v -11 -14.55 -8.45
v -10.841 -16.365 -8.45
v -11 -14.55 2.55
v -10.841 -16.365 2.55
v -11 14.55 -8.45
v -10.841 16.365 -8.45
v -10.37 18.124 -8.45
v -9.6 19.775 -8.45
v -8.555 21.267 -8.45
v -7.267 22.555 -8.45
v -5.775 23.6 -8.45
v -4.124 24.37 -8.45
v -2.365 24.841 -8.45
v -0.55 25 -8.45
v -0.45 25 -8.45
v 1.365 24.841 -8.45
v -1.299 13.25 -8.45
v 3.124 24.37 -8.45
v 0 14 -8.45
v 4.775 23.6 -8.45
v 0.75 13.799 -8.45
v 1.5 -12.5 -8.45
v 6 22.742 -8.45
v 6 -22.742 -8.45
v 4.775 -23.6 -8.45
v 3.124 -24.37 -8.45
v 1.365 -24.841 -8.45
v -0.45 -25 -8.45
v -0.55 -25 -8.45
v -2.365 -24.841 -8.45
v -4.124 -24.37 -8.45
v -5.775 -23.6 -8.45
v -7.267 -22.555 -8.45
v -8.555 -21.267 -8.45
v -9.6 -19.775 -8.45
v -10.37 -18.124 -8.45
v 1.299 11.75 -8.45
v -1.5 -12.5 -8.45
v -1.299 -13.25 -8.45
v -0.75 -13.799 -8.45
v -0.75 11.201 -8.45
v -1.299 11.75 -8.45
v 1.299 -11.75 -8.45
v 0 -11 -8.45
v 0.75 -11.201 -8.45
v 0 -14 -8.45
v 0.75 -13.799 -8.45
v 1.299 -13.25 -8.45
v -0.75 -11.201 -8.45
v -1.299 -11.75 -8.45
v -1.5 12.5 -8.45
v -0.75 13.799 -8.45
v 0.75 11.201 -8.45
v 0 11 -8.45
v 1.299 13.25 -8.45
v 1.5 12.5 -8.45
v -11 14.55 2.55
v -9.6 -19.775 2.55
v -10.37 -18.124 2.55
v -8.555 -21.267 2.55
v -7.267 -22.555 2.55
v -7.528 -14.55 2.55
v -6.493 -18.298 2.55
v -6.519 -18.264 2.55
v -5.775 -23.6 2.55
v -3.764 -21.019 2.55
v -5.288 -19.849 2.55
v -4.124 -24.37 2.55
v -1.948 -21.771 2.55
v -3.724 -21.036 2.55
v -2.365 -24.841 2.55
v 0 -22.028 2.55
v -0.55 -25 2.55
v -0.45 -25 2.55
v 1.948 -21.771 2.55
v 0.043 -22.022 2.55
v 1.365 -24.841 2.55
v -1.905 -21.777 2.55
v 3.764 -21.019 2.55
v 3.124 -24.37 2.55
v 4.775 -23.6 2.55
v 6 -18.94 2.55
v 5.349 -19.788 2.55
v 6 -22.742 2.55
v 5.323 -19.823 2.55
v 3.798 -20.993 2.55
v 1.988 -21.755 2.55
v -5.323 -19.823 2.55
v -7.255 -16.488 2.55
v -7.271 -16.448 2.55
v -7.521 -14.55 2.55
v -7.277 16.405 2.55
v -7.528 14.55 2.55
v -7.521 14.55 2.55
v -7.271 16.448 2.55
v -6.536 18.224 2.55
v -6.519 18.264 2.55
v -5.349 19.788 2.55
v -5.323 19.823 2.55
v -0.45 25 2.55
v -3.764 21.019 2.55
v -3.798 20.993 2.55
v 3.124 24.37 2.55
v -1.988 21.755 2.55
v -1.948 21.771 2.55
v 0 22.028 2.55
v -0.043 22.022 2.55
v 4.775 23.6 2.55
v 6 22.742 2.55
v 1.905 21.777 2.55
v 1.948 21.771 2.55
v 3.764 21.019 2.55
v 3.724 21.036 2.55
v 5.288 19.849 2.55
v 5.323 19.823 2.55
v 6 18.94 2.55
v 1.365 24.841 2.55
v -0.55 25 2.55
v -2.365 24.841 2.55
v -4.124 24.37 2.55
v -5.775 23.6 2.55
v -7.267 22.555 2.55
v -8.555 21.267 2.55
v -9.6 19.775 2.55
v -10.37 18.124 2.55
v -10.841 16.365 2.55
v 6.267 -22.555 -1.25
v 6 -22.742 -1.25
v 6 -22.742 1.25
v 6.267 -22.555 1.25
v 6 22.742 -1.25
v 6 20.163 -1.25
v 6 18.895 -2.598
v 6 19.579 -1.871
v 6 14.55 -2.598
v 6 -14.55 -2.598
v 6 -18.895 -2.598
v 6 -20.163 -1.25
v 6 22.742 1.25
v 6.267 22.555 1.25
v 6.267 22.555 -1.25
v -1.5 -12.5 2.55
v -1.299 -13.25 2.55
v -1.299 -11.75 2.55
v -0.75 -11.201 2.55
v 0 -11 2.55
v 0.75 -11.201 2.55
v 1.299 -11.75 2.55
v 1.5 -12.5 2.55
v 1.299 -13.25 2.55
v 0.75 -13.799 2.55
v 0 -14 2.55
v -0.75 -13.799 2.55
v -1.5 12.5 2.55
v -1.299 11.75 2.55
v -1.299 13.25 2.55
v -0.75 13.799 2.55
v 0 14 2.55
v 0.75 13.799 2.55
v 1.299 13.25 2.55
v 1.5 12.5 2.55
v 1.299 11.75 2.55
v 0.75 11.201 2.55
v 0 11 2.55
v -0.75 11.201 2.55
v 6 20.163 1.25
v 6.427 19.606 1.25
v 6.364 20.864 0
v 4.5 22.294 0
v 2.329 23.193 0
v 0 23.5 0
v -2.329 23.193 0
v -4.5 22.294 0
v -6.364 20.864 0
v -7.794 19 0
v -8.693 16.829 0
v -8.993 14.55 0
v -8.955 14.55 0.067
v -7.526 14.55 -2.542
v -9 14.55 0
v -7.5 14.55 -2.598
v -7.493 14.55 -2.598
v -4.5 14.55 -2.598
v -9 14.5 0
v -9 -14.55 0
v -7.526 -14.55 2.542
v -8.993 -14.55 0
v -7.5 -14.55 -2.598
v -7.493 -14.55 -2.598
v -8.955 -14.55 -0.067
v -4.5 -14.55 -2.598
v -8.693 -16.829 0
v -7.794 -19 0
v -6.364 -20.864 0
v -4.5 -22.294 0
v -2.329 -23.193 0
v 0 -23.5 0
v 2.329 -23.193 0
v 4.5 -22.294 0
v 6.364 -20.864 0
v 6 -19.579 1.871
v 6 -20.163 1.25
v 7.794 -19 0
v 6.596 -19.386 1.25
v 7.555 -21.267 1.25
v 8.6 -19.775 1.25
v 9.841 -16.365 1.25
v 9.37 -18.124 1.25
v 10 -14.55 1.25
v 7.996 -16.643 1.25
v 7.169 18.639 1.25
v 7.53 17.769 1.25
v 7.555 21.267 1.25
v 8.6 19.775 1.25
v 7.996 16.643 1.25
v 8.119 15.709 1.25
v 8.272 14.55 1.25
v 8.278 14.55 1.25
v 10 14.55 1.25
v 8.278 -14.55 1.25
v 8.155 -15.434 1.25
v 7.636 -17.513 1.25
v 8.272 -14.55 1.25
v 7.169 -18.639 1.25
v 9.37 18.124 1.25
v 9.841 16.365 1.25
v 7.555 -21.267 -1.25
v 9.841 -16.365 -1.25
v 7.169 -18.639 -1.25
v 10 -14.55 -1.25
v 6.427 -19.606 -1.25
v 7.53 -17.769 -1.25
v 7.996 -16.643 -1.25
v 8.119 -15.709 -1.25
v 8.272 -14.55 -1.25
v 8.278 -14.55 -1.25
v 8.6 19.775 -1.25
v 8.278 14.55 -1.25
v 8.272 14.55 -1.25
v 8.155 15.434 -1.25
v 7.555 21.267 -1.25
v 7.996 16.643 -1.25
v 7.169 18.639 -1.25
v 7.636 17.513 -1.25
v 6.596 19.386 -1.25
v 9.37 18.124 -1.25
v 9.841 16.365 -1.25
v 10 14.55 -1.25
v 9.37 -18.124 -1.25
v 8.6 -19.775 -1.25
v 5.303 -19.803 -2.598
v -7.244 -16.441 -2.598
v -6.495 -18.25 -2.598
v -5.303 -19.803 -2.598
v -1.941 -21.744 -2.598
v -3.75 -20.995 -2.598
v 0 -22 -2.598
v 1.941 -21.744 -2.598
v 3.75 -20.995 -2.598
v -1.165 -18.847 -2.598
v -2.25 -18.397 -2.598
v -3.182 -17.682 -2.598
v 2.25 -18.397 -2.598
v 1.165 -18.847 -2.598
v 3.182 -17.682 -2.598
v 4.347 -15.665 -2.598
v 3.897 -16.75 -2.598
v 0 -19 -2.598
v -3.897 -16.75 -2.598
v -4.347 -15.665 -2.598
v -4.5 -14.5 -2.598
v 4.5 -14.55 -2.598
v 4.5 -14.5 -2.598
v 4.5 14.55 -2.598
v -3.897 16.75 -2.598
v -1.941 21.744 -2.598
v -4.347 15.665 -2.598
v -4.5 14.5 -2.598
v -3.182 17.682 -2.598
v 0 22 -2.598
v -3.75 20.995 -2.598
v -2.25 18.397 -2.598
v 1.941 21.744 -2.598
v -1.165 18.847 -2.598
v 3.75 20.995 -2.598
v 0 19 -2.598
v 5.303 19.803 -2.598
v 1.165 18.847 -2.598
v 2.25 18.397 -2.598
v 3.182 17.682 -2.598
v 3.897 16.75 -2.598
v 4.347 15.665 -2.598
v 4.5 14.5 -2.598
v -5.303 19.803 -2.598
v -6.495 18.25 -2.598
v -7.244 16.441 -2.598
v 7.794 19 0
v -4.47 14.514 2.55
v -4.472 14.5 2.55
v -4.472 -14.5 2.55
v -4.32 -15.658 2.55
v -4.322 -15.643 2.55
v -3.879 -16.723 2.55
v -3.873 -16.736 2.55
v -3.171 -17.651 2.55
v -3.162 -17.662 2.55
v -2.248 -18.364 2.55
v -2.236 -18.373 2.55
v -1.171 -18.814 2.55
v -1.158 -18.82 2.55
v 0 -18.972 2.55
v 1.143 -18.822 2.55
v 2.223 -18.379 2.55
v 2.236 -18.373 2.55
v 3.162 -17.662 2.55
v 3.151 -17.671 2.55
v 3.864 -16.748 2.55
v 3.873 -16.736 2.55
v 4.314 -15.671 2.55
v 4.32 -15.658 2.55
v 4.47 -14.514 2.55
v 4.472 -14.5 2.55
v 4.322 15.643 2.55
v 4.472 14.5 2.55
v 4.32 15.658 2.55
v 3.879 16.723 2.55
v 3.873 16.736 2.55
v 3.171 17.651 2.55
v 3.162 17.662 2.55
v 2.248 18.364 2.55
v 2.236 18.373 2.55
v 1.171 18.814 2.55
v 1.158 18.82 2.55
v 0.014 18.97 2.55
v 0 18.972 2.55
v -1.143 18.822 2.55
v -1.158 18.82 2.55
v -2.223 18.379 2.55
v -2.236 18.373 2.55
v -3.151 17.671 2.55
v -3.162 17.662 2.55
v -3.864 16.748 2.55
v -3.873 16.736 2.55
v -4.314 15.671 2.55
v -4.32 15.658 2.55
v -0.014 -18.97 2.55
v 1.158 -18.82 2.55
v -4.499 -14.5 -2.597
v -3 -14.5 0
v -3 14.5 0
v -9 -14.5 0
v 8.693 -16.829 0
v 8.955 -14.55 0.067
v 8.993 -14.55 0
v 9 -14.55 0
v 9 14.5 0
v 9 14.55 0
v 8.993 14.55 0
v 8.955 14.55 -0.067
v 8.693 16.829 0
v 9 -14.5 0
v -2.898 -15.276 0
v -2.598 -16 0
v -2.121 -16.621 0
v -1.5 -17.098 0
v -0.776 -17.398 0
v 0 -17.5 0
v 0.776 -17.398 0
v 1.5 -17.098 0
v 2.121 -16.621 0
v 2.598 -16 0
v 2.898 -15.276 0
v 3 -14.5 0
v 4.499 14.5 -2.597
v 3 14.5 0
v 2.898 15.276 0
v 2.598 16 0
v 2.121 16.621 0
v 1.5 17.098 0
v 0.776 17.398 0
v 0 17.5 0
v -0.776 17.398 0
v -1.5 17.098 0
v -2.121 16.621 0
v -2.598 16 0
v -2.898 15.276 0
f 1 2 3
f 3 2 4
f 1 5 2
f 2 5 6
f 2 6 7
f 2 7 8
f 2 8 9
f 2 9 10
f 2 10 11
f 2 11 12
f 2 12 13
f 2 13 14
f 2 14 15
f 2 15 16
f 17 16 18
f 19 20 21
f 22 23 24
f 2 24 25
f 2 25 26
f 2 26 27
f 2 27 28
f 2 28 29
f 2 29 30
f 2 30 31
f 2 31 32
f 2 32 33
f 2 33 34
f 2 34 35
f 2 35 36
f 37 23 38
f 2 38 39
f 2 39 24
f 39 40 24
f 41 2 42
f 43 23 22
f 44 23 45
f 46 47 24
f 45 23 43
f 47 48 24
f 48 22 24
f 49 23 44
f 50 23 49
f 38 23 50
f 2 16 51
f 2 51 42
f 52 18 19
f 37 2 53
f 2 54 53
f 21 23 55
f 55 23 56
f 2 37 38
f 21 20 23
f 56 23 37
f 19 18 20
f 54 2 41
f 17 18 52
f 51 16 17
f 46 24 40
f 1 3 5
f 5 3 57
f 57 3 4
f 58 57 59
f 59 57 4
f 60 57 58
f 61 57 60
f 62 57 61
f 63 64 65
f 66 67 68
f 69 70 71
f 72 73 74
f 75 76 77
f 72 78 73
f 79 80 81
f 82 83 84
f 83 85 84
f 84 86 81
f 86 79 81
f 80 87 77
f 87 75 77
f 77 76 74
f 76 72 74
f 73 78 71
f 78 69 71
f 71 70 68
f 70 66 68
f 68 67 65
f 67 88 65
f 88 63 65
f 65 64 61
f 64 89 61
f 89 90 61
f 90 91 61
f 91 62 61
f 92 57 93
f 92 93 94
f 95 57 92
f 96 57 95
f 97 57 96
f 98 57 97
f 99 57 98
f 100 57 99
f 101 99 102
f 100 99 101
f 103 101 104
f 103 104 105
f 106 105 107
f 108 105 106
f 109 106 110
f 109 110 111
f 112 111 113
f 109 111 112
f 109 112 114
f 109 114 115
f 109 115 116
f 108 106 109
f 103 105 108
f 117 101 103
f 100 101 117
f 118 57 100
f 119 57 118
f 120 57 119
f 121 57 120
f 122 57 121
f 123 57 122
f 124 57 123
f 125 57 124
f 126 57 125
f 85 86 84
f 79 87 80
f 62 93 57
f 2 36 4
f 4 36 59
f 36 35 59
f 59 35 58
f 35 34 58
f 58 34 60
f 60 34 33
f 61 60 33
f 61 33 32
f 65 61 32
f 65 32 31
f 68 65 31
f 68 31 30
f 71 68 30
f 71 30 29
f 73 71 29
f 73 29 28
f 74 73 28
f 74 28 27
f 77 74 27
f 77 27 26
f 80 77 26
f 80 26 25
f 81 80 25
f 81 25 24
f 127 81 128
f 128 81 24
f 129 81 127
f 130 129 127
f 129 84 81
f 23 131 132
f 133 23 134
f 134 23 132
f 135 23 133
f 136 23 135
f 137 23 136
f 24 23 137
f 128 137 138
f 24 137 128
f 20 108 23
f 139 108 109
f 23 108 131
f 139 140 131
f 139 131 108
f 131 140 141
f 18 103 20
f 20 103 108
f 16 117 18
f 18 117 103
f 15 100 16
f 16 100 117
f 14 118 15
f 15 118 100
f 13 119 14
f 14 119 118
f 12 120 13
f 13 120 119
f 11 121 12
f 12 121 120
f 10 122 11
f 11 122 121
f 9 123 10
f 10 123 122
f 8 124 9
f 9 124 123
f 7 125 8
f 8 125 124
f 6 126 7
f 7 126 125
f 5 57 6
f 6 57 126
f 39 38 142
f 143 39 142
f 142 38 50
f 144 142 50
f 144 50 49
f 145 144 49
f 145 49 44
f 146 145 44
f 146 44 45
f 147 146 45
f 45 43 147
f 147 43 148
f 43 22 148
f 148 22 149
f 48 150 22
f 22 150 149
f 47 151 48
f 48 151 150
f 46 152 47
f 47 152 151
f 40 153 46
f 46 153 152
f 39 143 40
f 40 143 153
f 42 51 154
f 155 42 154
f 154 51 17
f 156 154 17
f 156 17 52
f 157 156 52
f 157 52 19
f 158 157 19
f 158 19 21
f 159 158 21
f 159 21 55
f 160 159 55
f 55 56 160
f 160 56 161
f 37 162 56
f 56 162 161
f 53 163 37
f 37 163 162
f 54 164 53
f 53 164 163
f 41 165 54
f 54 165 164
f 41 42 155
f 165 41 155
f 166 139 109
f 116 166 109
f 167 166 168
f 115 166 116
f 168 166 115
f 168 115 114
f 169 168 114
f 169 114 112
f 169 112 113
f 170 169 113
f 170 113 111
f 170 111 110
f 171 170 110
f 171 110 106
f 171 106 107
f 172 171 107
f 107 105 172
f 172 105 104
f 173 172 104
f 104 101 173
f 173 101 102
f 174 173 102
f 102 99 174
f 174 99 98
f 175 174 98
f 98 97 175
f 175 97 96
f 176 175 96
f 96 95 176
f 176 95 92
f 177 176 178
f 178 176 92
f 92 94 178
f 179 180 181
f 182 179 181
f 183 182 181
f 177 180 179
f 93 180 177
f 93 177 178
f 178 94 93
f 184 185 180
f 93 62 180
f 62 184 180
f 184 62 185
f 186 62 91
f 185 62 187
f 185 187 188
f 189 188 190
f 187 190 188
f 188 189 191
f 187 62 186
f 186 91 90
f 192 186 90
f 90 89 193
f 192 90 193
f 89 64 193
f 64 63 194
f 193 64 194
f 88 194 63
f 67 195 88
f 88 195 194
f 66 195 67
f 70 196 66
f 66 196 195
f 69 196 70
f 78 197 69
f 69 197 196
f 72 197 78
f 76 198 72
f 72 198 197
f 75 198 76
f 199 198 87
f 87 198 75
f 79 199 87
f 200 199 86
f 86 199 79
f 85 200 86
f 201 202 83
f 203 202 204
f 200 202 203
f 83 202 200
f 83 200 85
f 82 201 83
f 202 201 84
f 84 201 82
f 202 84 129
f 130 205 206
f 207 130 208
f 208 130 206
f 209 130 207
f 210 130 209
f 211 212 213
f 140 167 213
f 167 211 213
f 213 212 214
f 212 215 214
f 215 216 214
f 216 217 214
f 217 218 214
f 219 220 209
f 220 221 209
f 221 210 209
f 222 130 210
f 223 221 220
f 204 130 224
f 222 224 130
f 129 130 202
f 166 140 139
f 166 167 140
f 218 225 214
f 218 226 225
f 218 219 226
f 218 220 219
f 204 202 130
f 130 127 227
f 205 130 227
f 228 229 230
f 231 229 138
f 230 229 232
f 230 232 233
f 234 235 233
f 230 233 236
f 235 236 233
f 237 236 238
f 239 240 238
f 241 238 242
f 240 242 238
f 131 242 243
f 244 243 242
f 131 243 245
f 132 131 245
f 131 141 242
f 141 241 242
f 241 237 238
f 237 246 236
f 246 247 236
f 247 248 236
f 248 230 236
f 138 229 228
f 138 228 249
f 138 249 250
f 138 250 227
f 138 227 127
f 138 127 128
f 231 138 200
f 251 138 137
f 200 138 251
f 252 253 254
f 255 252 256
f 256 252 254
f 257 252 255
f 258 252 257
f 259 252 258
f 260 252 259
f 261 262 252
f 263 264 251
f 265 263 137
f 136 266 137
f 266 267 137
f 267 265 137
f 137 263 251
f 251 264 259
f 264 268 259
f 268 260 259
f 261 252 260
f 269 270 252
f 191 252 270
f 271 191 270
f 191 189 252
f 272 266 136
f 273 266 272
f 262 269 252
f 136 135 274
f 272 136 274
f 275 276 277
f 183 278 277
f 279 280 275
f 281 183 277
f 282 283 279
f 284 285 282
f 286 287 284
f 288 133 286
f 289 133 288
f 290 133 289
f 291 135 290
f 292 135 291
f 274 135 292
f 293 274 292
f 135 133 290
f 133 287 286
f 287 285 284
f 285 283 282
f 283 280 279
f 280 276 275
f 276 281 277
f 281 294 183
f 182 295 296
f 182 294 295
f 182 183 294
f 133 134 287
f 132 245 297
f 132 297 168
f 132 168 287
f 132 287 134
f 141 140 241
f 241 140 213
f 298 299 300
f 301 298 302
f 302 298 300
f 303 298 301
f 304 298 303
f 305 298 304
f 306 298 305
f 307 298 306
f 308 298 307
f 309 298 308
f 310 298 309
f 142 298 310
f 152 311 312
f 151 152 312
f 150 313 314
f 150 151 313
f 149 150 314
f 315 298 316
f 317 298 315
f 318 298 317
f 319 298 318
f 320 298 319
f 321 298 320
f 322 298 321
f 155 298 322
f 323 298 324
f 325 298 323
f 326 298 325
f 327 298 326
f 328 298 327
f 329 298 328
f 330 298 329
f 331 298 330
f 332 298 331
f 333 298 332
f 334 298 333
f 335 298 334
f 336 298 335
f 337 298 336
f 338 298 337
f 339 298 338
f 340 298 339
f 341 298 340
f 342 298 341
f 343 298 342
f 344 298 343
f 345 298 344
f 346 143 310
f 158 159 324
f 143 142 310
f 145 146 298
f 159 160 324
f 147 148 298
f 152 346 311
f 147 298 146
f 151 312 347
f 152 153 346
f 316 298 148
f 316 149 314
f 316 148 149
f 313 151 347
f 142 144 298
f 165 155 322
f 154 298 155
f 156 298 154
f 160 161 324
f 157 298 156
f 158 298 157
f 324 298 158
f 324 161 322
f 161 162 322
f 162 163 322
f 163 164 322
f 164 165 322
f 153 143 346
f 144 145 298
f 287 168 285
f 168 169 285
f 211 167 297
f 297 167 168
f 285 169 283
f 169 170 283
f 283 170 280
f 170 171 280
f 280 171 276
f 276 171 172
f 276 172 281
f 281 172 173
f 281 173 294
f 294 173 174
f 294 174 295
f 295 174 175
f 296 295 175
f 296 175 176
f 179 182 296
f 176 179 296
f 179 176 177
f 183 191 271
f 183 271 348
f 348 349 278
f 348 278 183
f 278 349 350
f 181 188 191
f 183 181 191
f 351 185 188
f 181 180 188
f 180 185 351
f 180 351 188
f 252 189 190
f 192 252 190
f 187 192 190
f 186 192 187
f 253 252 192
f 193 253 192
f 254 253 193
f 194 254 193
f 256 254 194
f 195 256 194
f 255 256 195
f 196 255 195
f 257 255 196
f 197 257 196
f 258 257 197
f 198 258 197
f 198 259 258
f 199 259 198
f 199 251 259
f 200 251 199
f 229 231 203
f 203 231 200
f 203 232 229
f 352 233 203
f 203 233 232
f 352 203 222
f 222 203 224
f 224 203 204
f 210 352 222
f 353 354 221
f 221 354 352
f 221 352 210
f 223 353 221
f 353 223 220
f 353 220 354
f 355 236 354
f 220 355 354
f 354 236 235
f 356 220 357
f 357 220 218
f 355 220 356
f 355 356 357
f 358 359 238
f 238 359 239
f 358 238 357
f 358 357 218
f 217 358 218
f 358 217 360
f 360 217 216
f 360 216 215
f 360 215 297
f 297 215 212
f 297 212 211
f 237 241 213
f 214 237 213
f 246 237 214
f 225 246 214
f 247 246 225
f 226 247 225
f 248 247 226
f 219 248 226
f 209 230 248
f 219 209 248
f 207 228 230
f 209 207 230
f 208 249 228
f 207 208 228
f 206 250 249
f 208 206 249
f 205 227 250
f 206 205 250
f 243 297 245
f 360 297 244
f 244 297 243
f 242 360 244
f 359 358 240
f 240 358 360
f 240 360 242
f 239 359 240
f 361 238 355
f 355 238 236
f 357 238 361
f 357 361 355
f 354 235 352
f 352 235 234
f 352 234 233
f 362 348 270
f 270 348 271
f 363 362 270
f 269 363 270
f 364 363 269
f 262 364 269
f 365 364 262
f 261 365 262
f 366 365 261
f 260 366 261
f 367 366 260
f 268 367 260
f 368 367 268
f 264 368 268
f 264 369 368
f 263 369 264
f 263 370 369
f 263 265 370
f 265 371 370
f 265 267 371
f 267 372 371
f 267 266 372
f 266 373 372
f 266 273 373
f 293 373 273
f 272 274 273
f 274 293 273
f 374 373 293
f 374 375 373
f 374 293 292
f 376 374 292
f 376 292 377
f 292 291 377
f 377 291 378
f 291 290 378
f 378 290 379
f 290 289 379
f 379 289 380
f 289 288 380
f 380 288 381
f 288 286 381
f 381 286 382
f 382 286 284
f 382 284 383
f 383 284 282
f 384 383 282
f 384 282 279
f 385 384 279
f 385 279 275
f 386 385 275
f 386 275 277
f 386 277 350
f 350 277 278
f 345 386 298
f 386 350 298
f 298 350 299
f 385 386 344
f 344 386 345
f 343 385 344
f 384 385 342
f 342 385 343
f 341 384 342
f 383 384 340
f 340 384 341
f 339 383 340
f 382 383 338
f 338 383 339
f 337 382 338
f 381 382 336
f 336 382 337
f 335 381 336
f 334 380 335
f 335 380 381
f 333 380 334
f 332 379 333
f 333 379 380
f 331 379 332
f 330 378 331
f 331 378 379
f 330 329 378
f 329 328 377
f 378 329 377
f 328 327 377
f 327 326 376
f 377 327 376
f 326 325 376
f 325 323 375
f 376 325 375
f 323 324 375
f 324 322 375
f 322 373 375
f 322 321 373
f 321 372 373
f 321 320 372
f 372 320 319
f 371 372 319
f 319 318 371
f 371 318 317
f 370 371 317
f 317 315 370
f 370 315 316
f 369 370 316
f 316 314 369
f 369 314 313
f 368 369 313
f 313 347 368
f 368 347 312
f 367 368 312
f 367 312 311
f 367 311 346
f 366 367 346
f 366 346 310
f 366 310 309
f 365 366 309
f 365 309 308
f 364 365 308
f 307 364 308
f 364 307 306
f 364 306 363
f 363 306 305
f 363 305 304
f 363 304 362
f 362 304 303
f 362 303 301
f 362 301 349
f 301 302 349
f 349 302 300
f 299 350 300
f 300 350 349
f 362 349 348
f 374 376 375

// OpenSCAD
length = 50;
thickness = 11;
channel_radius = 3;
track_radius = 6;
outside_radius = channel_radius + track_radius + 1.5;
separation = 12 + 2 * (channel_radius + track_radius);
slot = 2.5;

module track(h) {
  union() {
    translate([0, outside_radius-length/2, 0]) intersection() {
      rotate_extrude($fn=24) translate([track_radius, 0, 0])
        circle(r=channel_radius, $fn=6);
      translate([0, -20, 0]) cube([40, 40, 40], center=true);
    }
    translate([0, length/2-outside_radius, 0]) intersection() {
      rotate_extrude($fn=24) translate([track_radius, 0, 0])
        circle(r=channel_radius, $fn=6);
      translate([0, 20, 0]) cube([40, 40, 40], center=true);
    }
    for (s = [-1, 1]) {
      scale([s, 1, 1])
        translate([track_radius, 0, 0]) rotate([90, 0, 0])
        cylinder(r=channel_radius,
                 h=length-2*outside_radius+0.1,
                 center=true, $fn=6);
    }
  }
}

module half() {
  difference() {
    translate([0, 0, slot/2-thickness+1.3])
    linear_extrude(height=thickness) {
      difference() {
        translate([-0.5, 0, 0]) minkowski() {
          square([0.1, 0.1+length-2*outside_radius], center=true);
          circle(r=outside_radius-0.05, $fn=36);
        }
        for (y = [2+outside_radius-length/2,
                  length/2-outside_radius-2]) {
          translate([0, y])
            circle(r=1.5, $fn=12);
        }
      }
    }
    track();
    translate([10+track_radius, 0, -10-slot/2])
      cube([20, length, 20], center=true);
    translate([10+track_radius, 0, 10+slot/2])
      cube([20, length, 20], center=true);
  }
}

for (s = [1]) {
  scale([s, 1, 1]) half(1.5);
}
